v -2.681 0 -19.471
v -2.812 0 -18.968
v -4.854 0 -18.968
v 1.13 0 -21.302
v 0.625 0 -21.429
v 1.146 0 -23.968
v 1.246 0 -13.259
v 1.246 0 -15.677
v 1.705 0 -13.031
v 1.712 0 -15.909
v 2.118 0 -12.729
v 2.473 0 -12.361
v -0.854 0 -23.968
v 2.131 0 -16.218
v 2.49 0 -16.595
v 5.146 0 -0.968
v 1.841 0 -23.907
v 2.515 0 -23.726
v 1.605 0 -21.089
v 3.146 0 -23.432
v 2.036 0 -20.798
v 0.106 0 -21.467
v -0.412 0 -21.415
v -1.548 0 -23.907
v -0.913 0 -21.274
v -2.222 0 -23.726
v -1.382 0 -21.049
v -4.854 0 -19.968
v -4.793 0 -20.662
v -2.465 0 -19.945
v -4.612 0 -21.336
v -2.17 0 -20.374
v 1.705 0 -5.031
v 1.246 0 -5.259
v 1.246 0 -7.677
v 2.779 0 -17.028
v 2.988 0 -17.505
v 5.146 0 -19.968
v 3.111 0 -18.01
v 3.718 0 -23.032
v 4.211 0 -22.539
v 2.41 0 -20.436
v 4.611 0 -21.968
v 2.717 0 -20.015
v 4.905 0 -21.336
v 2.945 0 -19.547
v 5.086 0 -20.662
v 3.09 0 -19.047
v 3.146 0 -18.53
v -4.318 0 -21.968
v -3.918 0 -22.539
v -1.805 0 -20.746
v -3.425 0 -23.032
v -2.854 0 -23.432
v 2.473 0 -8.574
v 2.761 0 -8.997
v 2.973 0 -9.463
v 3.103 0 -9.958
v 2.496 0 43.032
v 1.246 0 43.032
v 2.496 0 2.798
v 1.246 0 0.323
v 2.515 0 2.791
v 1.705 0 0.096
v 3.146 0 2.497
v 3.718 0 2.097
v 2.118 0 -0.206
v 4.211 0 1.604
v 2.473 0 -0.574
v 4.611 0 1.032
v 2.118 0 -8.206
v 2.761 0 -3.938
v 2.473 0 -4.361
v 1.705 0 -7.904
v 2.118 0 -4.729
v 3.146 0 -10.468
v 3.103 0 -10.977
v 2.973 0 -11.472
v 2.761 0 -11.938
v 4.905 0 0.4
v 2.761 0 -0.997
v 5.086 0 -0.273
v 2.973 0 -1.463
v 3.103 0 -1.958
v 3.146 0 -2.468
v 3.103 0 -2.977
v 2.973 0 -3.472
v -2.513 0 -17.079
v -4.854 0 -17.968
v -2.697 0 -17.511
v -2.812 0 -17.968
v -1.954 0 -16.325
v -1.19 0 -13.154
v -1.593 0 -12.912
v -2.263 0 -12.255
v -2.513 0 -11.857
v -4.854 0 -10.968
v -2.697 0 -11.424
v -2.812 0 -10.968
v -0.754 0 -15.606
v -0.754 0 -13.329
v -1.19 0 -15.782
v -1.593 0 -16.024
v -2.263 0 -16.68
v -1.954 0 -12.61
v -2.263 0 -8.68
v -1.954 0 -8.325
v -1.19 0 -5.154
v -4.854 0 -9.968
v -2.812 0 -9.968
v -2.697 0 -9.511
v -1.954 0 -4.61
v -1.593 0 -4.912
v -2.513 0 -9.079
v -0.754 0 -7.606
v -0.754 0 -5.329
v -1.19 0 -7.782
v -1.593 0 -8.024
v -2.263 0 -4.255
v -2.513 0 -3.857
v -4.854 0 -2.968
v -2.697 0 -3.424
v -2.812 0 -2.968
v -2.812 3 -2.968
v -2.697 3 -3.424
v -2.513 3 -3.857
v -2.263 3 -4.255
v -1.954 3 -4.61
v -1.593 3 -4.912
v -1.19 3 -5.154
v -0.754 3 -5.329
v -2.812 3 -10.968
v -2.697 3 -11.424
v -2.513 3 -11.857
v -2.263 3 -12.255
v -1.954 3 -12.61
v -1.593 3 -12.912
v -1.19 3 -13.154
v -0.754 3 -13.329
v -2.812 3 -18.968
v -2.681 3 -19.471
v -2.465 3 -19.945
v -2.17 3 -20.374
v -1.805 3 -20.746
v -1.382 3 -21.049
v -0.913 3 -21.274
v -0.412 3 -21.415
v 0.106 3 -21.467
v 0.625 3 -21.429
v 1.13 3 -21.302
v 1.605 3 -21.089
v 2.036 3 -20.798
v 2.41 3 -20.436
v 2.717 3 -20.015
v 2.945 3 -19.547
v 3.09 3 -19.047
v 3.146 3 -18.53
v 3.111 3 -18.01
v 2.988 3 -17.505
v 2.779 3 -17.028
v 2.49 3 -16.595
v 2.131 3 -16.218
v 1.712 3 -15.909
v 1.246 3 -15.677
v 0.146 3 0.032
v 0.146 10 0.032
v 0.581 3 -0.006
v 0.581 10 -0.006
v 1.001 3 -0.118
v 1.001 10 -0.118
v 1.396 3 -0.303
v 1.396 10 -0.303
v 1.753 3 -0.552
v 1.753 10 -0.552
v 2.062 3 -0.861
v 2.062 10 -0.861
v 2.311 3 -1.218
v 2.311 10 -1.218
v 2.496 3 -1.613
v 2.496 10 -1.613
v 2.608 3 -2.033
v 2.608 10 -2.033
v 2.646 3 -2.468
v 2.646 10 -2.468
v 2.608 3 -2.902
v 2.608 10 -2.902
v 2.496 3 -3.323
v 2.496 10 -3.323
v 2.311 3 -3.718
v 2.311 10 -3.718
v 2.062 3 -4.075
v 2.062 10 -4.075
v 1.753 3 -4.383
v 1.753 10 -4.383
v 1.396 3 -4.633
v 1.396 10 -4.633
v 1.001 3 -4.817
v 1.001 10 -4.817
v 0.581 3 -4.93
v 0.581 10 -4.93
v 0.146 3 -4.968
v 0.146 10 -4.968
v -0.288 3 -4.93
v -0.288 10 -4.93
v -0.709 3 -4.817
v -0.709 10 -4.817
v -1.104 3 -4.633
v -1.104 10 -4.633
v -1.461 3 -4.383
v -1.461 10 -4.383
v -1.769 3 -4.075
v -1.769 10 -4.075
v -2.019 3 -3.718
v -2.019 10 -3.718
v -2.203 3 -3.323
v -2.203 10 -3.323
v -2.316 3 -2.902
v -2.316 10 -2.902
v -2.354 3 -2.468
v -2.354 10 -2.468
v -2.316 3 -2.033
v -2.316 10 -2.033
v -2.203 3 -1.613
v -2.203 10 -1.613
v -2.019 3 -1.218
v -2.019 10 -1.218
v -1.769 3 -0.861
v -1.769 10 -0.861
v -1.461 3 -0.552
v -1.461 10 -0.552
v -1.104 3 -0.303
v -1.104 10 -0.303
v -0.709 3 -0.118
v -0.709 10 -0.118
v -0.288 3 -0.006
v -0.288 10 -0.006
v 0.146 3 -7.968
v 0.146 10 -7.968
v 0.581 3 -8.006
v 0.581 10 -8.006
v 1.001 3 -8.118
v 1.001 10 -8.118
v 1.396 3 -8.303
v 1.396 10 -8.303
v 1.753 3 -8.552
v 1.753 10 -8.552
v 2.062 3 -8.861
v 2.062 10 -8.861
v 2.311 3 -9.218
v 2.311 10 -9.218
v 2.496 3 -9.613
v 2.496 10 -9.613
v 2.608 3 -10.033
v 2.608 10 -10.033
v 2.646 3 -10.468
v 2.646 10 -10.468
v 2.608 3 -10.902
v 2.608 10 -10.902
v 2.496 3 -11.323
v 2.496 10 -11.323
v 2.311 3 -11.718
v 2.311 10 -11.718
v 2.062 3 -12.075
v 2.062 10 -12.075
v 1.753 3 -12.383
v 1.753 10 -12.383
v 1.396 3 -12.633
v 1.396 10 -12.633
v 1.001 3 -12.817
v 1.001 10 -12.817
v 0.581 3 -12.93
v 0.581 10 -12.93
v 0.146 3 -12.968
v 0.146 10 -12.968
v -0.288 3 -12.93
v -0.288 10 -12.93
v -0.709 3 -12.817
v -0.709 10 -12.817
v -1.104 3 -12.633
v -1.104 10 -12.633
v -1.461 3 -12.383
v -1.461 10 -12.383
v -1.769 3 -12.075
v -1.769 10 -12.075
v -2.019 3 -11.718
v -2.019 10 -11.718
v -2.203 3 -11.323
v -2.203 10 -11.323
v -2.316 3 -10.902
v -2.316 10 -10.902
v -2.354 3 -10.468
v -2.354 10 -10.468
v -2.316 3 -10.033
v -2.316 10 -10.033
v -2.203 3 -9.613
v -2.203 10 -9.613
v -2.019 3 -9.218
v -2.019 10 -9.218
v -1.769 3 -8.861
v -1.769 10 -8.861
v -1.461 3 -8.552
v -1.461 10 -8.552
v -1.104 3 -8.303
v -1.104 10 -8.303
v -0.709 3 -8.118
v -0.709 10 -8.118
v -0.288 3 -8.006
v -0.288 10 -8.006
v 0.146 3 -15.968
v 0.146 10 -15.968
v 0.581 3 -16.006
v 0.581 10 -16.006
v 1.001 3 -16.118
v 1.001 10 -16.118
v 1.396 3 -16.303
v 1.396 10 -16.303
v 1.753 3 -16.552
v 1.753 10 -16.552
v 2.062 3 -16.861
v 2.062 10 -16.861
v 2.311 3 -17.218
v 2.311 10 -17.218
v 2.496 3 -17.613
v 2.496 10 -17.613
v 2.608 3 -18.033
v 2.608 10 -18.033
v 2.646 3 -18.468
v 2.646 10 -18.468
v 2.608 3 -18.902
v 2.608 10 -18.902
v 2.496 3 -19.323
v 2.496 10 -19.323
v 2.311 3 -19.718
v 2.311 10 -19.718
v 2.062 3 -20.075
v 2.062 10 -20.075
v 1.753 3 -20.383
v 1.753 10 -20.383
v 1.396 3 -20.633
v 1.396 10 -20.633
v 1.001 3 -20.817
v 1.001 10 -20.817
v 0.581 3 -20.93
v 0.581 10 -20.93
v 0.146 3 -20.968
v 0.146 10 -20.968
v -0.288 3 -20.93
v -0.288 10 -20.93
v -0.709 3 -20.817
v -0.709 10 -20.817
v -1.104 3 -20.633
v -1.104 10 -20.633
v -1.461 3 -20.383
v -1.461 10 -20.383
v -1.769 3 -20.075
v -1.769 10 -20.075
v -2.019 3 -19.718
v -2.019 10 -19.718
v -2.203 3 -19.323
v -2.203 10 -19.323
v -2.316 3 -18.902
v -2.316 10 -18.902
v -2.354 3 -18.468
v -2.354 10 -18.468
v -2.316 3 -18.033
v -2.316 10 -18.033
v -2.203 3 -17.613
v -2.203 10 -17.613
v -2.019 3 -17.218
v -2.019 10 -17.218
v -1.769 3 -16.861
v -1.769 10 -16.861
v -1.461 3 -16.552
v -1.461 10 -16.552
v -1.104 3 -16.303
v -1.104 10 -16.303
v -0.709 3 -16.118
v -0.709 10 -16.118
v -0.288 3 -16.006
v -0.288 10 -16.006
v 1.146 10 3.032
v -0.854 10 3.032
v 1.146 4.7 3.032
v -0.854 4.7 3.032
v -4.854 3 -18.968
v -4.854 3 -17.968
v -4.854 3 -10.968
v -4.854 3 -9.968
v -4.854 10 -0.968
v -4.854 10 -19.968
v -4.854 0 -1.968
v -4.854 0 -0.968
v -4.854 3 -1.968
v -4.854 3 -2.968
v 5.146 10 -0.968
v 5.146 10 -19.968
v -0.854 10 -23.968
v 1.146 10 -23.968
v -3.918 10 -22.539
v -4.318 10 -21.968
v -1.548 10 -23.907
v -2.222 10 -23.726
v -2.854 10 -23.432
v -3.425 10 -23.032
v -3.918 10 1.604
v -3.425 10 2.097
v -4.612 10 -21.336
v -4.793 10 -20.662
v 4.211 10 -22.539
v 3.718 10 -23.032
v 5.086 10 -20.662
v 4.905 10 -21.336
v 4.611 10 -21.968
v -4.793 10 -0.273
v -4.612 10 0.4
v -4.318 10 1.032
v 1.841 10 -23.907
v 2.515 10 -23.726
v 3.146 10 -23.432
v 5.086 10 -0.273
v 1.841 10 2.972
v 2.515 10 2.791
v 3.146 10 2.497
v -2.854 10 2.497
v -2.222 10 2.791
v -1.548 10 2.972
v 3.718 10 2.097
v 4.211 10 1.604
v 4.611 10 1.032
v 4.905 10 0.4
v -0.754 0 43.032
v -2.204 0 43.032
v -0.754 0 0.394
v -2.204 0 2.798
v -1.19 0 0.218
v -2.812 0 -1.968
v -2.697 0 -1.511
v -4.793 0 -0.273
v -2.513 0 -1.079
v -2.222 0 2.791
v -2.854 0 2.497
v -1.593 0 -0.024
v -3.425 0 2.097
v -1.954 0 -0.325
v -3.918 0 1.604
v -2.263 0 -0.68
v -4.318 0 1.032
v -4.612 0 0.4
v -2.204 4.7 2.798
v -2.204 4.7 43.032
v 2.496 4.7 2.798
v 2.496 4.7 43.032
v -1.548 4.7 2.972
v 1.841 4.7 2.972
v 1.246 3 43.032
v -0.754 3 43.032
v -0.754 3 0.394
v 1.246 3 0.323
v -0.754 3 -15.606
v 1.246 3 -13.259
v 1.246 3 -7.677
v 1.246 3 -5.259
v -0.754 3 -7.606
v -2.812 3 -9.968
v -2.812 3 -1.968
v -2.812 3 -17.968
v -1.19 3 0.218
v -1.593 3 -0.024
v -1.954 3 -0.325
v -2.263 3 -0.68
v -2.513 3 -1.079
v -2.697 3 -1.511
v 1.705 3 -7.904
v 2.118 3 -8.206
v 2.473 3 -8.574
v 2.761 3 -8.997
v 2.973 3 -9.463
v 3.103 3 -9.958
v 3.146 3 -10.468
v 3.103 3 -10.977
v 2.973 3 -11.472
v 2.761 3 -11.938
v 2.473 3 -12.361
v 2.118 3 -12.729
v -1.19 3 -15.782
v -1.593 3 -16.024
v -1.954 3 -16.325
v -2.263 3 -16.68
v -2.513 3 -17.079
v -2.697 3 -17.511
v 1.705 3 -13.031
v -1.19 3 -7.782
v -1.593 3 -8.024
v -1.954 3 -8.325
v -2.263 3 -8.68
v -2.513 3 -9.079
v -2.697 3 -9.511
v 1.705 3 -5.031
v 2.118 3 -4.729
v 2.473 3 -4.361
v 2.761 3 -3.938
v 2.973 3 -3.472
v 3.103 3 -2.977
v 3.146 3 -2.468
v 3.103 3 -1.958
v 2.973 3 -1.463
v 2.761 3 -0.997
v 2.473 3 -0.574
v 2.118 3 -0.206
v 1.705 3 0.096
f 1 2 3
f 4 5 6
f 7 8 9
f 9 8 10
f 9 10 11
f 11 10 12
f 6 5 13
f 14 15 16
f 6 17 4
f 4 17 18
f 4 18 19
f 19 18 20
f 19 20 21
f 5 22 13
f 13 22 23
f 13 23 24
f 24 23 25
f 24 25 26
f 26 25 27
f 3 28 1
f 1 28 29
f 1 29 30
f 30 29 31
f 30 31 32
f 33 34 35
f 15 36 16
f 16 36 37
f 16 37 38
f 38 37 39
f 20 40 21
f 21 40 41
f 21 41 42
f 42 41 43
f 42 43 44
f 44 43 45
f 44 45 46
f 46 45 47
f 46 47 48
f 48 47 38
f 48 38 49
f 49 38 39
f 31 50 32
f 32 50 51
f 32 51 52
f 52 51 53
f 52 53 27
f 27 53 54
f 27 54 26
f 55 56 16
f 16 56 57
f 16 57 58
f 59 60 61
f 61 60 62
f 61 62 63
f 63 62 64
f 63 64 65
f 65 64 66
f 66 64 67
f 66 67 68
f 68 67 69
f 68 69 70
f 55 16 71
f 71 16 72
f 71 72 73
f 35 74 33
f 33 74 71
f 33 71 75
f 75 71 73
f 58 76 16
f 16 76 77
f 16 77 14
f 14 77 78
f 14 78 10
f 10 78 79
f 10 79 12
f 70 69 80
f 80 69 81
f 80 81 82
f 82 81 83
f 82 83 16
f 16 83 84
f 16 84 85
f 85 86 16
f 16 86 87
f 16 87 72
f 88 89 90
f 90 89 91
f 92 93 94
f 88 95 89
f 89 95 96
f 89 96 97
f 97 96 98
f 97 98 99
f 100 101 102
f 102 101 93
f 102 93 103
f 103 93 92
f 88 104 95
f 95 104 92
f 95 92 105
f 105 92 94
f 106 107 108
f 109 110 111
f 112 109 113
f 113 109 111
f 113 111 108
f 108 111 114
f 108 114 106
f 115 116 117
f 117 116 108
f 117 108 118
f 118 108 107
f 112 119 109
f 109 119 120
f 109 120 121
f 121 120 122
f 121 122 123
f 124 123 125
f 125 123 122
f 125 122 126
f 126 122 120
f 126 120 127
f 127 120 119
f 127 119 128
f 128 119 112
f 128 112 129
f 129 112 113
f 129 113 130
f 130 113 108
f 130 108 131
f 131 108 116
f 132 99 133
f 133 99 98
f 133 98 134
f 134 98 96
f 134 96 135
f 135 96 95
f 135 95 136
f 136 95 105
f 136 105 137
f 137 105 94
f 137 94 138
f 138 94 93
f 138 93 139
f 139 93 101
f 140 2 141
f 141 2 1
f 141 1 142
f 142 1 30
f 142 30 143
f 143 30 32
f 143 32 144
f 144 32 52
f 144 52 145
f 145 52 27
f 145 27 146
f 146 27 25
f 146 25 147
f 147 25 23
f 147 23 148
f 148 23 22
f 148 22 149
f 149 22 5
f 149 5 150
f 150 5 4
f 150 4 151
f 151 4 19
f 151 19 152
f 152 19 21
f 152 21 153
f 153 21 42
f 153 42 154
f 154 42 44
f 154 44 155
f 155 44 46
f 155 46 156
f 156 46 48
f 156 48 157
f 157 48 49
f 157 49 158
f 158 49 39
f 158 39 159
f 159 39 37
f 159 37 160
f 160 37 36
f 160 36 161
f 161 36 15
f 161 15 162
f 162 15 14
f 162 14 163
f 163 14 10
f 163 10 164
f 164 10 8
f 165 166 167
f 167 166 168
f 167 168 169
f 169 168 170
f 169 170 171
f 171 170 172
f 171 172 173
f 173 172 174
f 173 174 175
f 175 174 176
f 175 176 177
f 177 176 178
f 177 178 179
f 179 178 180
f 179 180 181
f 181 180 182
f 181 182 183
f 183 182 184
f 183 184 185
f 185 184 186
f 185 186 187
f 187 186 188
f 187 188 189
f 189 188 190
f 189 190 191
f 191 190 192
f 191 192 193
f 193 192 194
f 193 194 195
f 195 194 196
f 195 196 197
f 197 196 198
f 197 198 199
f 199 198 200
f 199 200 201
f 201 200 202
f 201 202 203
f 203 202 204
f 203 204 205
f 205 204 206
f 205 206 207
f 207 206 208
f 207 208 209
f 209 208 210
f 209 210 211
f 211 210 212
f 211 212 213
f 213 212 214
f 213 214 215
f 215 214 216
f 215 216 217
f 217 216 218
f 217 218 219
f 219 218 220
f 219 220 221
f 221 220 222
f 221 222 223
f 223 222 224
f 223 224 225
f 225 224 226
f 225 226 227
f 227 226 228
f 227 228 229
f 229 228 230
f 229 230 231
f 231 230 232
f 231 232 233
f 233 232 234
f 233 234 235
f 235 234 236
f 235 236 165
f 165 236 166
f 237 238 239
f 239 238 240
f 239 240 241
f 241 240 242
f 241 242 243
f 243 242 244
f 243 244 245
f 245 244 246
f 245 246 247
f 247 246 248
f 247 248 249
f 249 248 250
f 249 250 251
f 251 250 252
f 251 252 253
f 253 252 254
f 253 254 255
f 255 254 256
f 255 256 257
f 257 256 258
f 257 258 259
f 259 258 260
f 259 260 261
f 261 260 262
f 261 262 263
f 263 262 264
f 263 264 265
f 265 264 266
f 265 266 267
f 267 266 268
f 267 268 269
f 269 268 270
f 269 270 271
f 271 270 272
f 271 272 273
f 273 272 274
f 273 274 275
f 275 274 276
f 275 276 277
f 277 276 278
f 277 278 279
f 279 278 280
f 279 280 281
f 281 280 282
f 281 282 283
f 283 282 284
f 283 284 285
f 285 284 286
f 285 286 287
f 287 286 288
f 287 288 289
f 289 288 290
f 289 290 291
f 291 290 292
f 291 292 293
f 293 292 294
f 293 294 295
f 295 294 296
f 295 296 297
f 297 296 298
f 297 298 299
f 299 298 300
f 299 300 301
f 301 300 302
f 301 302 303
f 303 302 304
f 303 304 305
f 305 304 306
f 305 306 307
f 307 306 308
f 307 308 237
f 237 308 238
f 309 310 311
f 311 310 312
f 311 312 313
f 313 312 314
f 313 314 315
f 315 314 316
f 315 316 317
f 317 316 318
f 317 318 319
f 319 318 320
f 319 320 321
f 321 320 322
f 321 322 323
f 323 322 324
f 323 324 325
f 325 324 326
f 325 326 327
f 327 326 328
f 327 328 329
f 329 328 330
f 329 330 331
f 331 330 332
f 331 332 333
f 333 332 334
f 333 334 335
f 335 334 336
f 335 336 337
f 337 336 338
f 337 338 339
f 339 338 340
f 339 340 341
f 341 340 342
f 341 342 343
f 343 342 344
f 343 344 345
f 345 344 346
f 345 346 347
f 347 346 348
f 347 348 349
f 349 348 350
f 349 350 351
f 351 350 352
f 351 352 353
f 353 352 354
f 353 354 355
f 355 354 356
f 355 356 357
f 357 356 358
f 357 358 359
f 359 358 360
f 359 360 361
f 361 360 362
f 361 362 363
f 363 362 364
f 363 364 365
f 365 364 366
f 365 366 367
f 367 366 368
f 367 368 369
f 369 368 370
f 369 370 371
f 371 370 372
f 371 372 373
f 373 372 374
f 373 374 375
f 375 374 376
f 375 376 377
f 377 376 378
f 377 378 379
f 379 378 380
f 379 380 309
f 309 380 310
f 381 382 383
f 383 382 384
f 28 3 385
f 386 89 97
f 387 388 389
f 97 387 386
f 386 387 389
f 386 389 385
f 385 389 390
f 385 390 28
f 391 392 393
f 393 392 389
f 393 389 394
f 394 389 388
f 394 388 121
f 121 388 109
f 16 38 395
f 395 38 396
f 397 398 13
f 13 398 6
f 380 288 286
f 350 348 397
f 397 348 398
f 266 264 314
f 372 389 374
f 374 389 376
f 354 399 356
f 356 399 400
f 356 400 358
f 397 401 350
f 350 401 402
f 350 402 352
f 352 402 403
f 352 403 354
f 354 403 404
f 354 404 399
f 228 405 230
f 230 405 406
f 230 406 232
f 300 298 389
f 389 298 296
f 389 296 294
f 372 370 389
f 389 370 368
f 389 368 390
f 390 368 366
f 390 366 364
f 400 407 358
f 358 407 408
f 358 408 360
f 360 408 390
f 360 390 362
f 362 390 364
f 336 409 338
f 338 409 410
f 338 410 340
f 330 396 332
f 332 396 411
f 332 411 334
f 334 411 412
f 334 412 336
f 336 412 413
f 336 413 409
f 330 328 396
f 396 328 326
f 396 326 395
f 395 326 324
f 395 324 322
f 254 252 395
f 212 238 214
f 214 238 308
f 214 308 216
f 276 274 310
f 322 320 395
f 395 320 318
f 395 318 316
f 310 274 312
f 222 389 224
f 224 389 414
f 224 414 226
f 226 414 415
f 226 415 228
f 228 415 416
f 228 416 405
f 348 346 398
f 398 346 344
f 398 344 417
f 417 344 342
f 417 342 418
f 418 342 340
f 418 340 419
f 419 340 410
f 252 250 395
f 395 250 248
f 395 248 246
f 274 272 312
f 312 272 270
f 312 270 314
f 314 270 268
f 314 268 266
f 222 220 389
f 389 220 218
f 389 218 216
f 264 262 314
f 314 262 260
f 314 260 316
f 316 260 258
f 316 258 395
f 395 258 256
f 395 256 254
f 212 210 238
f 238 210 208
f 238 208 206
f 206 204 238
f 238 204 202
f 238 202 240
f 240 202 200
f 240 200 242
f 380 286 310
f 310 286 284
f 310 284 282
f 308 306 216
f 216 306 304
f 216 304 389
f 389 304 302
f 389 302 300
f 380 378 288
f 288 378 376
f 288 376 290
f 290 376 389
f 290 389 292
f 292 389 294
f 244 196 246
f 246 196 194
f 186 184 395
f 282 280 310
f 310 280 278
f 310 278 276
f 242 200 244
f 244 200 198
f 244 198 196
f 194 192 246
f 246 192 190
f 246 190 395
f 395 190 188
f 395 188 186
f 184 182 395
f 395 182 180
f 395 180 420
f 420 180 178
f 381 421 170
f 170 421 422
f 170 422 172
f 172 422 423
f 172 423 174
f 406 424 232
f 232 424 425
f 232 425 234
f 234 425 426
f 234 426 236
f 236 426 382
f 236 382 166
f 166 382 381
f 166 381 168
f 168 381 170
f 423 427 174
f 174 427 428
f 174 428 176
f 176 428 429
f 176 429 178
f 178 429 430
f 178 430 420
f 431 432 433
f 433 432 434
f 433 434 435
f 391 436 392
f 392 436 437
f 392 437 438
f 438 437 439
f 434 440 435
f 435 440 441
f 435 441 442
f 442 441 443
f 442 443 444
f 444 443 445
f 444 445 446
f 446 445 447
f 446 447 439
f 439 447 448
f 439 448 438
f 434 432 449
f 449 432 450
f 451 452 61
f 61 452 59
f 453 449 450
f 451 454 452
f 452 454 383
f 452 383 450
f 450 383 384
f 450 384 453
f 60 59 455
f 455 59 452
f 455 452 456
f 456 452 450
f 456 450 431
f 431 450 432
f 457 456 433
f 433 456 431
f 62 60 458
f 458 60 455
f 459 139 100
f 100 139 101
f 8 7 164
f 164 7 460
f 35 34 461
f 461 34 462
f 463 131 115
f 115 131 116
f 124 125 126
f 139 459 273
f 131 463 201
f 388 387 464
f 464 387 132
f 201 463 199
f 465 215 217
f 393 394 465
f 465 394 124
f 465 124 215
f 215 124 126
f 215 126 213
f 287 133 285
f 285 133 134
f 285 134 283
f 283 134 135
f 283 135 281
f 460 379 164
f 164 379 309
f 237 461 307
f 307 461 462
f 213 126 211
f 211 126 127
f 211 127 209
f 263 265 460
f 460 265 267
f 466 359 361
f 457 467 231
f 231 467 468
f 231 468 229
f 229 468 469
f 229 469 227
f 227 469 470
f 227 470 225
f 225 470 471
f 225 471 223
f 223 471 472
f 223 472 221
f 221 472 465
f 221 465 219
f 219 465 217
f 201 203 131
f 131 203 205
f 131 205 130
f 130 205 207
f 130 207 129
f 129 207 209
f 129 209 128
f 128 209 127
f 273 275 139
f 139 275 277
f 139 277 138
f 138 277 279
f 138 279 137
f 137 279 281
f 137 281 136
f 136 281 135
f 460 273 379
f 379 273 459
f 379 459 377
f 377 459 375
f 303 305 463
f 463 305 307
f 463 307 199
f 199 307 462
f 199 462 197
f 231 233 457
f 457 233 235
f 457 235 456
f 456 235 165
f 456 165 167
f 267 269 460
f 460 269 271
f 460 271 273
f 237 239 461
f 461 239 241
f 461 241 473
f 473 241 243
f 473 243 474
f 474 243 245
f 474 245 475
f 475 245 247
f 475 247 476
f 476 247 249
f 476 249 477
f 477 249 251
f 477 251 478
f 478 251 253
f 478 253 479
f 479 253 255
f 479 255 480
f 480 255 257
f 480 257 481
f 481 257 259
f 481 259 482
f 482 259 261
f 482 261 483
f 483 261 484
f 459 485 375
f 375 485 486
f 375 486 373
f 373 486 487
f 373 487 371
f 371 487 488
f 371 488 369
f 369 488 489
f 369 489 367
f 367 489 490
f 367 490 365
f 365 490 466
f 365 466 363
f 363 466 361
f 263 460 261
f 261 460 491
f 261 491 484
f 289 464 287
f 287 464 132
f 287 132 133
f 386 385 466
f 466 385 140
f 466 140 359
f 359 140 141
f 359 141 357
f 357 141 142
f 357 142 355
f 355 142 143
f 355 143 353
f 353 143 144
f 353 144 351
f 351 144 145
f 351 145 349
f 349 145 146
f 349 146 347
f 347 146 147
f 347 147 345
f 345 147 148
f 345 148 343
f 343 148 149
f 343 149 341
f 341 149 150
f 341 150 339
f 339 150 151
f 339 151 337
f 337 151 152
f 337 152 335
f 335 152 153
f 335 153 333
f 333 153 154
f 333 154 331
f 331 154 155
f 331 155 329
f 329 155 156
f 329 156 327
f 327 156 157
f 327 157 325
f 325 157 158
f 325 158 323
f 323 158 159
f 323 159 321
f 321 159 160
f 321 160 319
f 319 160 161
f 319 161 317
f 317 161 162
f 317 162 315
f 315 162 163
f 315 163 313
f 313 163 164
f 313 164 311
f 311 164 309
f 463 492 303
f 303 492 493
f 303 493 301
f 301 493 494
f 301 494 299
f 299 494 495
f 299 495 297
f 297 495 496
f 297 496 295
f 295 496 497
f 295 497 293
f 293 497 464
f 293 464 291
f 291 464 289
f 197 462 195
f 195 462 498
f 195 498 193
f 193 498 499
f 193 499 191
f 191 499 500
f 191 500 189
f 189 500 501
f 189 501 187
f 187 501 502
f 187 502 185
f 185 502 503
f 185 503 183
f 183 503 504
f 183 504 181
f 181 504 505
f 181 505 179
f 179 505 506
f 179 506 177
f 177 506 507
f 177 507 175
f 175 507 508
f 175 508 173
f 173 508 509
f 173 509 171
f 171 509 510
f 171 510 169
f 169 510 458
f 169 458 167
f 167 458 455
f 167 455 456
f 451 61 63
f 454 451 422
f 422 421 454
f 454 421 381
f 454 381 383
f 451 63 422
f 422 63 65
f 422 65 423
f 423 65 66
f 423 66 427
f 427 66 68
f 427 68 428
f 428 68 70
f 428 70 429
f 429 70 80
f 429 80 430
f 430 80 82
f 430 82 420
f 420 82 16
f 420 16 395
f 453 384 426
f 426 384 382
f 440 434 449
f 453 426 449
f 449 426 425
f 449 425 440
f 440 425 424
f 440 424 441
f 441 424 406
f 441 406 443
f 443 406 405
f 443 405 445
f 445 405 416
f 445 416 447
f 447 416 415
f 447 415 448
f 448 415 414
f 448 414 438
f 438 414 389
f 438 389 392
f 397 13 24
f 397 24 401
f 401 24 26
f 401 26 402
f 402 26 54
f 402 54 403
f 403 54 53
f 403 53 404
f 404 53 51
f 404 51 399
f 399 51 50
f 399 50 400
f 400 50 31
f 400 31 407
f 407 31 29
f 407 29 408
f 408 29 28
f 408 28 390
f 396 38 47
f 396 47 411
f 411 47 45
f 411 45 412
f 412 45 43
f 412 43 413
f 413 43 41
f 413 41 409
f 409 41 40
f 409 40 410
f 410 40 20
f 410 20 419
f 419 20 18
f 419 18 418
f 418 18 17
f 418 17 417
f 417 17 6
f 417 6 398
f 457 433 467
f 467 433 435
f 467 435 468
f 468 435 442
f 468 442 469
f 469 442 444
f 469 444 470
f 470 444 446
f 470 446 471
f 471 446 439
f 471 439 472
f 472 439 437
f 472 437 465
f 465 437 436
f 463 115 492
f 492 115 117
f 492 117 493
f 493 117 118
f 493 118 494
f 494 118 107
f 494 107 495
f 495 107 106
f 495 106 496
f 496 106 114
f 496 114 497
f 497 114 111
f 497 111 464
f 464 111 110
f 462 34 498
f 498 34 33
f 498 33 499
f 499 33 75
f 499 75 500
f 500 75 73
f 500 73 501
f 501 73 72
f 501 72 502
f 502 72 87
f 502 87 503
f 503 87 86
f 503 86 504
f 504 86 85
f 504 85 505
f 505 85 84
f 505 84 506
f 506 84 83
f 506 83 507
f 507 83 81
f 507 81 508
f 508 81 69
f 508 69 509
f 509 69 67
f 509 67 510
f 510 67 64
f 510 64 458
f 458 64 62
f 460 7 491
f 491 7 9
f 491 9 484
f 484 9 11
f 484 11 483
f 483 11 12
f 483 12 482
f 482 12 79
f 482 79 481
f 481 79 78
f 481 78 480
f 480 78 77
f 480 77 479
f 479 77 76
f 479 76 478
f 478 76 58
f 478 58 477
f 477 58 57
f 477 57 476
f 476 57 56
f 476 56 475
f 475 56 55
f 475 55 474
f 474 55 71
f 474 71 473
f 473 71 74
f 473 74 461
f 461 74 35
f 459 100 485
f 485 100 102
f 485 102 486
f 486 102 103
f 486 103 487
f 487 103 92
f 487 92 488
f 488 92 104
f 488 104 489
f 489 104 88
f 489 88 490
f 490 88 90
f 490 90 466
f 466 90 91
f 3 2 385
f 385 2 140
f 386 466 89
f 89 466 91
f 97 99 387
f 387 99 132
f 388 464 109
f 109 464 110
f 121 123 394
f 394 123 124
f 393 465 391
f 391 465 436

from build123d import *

# Parameters (mm, degrees)
SKETCH1_W           = 10
SKETCH1_H           = 27
BOSS_EXTRUDE1_DEPTH = 10
SKETCH2_R           = 2.5
CUT_EXTRUDE1_DEPTH  = 10
SKETCH3_W           = 4.7
SKETCH3_H           = 4.7
BOSS_EXTRUDE2_DEPTH = 40
SKETCH4_W           = 2
SKETCH4_H           = 62
CUT_EXTRUDE3_DEPTH  = 3
FILLET1_R           = 4
SKETCH5_R           = 3
CUT_EXTRUDE4_DEPTH  = 3
CUT_EXTRUDE5_DEPTH  = 3


with BuildPart() as part:
    # Sketch1 → Boss-Extrude1 (new body)
    with BuildSketch(Plane(origin=(0, 0, 0), x_dir=(1, 0, 0), z_dir=(0, 1, 0))):
        with Locations((0.146426278, 10.467599094)):
            Rectangle(SKETCH1_W, SKETCH1_H)
    extrude(amount=BOSS_EXTRUDE1_DEPTH)

    # Sketch2 → Cut-Extrude1 (cut)
    with BuildSketch(Plane(origin=(0, 10, 0), x_dir=(1, 0, 0), z_dir=(0, 1, 0))):
        with Locations(Location((0.146426278, 18.467599094, 0), (0, 0, 270))):
            Circle(SKETCH2_R)
        with Locations(Location((0.146426278, 10.467599094, 0), (0, 0, 270))):
            Circle(SKETCH2_R)
        with Locations(Location((0.146426278, 2.467599094, 0), (0, 0, 270))):
            Circle(SKETCH2_R)
    extrude(amount=-CUT_EXTRUDE1_DEPTH, mode=Mode.SUBTRACT)

    # Sketch3 → Boss-Extrude2 (add)
    with BuildSketch(Plane.XY.offset(3.032400906)):
        with Locations((0.146426278, 2.35)):
            Rectangle(SKETCH3_W, SKETCH3_H)
    extrude(amount=BOSS_EXTRUDE2_DEPTH)

    # Sketch4 → Cut-Extrude3 (cut)
    with BuildSketch(Plane(origin=(0, 0, 0), x_dir=(-1, 0, 0), z_dir=(0, -1, 0))):
        with Locations((-0.246426278, -12.032400906)):
            Rectangle(SKETCH4_W, SKETCH4_H)
    extrude(amount=-CUT_EXTRUDE3_DEPTH, mode=Mode.SUBTRACT)

    # Fillet1
    fillet1_edges = [part.edges().sort_by_distance(p)[0] for p in [
        (5.146426278, 5, 3.032400906),
        (-4.853573722, 5, 3.032400906),
        (-4.853573722, 5, -23.967599094),
        (5.146426278, 5, -23.967599094),
    ]]
    fillet(fillet1_edges, radius=FILLET1_R)

    # Sketch5 → Cut-Extrude4 (cut)
    with BuildSketch(Plane(origin=(0, 0, 0), x_dir=(-1, 0, 0), z_dir=(0, -1, 0))):
        with Locations((-0.146426278, 18.467599094)):
            Circle(SKETCH5_R)
        with Locations((-0.146426278, 10.467599094)):
            Circle(SKETCH5_R)
        with Locations((-0.146426278, 2.467599094)):
            Circle(SKETCH5_R)
    extrude(amount=-CUT_EXTRUDE4_DEPTH, mode=Mode.SUBTRACT)

    # Sketch6 → Cut-Extrude5 (cut)
    with BuildSketch(Plane(origin=(0, 0, 0), x_dir=(-1, 0, 0), z_dir=(0, -1, 0))):
        Polygon((-0.146426278, 18.467599094), (-0.146426278, 18.967599094), (4.853573722, 18.967599094), (4.853573722, 18.467599094), (4.853573722, 17.967599094), (-0.146426278, 17.967599094), align=None)
        Polygon((-0.146426278, 10.467599094), (-0.146426278, 10.967599094), (4.853573722, 10.967599094), (4.853573722, 10.467599094), (4.853573722, 9.967599094), (-0.146426278, 9.967599094), align=None)
        Polygon((-0.146426278, 2.467599094), (-0.146426278, 2.967599094), (4.853573722, 2.967599094), (4.853573722, 2.467599094), (4.853573722, 1.967599094), (-0.146426278, 1.967599094), align=None)
    extrude(amount=-CUT_EXTRUDE5_DEPTH, mode=Mode.SUBTRACT)


solid = part.part
